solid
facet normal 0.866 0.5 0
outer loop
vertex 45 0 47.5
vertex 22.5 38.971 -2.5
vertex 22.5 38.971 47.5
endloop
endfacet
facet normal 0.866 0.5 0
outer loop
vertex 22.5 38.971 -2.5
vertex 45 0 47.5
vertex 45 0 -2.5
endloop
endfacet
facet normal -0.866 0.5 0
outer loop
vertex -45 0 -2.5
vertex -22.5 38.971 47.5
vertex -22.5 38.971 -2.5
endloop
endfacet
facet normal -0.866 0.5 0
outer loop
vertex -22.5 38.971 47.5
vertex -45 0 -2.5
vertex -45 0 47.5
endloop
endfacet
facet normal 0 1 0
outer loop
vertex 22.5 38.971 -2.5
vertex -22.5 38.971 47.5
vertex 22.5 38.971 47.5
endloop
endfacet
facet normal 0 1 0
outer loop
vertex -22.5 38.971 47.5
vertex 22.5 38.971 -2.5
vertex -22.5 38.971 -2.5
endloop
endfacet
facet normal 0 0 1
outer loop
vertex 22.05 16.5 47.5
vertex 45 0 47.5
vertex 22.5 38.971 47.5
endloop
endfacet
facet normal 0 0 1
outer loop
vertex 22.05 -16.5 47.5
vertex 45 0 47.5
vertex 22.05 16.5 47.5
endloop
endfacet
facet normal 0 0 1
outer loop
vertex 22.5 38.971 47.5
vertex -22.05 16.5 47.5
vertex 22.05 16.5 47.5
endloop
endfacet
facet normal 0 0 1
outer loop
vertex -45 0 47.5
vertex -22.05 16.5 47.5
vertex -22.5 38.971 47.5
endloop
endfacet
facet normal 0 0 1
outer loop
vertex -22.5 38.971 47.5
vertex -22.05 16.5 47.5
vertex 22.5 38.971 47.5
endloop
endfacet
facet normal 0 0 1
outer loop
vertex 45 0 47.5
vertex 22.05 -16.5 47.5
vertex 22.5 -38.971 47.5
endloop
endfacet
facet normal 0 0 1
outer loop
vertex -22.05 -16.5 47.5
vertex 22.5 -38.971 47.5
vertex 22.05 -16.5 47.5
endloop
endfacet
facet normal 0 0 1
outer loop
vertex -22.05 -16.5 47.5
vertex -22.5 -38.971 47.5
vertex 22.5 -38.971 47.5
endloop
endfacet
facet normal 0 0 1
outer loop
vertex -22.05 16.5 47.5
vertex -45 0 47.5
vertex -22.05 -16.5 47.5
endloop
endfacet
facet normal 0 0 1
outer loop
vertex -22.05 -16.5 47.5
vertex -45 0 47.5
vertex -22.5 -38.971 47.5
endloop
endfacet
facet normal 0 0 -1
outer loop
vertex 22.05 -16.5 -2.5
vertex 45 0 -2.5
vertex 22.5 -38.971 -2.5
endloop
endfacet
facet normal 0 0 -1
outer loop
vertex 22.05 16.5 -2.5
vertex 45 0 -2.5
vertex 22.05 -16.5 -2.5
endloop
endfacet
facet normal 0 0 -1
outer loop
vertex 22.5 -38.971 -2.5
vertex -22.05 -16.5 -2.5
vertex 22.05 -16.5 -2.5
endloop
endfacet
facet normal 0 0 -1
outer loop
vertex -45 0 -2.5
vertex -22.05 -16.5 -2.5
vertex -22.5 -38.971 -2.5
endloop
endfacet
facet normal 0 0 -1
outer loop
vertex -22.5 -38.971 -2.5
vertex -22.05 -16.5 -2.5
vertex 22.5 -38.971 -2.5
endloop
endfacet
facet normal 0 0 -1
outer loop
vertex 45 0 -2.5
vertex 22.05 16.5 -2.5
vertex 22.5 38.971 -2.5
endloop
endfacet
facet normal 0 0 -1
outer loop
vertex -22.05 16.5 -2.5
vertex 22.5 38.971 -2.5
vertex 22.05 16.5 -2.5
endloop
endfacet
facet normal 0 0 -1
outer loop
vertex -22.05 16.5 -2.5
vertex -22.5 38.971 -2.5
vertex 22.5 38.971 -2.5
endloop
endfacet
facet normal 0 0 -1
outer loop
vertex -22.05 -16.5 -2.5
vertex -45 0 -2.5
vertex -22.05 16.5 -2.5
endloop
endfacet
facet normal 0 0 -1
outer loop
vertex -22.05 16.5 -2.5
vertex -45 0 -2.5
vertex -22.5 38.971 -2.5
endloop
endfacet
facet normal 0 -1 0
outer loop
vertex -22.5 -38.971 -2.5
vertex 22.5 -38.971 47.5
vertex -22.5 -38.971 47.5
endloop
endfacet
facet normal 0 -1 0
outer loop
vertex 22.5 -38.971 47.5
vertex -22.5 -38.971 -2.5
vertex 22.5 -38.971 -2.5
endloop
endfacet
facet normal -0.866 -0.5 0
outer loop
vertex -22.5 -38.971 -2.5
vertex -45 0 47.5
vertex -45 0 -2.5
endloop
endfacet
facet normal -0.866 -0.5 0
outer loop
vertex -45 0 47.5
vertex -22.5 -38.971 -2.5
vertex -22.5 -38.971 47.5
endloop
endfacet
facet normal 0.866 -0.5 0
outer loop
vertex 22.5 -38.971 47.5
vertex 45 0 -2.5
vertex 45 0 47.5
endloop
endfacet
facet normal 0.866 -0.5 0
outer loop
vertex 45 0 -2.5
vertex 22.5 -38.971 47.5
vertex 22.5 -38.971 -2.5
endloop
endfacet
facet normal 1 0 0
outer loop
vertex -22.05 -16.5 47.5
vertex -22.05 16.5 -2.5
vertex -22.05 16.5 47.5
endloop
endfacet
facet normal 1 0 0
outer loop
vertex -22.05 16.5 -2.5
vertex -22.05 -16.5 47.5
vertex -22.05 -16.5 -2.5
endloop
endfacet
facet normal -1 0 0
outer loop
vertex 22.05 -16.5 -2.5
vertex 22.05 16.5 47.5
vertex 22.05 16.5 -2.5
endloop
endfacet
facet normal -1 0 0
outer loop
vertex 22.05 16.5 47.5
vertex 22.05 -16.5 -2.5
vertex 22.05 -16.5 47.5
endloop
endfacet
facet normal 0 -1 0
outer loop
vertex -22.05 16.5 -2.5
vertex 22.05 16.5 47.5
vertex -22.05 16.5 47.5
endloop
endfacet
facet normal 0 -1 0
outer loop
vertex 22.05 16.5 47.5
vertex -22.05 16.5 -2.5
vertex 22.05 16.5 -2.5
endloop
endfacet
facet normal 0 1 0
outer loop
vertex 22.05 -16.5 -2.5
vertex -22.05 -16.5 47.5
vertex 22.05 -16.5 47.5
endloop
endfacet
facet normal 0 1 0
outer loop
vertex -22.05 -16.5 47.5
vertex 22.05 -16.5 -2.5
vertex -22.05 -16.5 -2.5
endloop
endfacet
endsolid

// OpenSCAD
// Weird leg notes
// width 44
// height 33.5

// can import PNG with surface
// surface(file=logo,invert=true); 


module leg() {
    translate([-1 * 44.1/2, -1 * 33.0/2, -3])
    cube([44.1, 33.0, 460]);
}


$fn=6;
// want a bolt hole?
module hip() {
    difference() {
        translate([0, 0, 45/2])
        cylinder(h=50, r=45, center=true);
        leg();
    }
}


hip();
